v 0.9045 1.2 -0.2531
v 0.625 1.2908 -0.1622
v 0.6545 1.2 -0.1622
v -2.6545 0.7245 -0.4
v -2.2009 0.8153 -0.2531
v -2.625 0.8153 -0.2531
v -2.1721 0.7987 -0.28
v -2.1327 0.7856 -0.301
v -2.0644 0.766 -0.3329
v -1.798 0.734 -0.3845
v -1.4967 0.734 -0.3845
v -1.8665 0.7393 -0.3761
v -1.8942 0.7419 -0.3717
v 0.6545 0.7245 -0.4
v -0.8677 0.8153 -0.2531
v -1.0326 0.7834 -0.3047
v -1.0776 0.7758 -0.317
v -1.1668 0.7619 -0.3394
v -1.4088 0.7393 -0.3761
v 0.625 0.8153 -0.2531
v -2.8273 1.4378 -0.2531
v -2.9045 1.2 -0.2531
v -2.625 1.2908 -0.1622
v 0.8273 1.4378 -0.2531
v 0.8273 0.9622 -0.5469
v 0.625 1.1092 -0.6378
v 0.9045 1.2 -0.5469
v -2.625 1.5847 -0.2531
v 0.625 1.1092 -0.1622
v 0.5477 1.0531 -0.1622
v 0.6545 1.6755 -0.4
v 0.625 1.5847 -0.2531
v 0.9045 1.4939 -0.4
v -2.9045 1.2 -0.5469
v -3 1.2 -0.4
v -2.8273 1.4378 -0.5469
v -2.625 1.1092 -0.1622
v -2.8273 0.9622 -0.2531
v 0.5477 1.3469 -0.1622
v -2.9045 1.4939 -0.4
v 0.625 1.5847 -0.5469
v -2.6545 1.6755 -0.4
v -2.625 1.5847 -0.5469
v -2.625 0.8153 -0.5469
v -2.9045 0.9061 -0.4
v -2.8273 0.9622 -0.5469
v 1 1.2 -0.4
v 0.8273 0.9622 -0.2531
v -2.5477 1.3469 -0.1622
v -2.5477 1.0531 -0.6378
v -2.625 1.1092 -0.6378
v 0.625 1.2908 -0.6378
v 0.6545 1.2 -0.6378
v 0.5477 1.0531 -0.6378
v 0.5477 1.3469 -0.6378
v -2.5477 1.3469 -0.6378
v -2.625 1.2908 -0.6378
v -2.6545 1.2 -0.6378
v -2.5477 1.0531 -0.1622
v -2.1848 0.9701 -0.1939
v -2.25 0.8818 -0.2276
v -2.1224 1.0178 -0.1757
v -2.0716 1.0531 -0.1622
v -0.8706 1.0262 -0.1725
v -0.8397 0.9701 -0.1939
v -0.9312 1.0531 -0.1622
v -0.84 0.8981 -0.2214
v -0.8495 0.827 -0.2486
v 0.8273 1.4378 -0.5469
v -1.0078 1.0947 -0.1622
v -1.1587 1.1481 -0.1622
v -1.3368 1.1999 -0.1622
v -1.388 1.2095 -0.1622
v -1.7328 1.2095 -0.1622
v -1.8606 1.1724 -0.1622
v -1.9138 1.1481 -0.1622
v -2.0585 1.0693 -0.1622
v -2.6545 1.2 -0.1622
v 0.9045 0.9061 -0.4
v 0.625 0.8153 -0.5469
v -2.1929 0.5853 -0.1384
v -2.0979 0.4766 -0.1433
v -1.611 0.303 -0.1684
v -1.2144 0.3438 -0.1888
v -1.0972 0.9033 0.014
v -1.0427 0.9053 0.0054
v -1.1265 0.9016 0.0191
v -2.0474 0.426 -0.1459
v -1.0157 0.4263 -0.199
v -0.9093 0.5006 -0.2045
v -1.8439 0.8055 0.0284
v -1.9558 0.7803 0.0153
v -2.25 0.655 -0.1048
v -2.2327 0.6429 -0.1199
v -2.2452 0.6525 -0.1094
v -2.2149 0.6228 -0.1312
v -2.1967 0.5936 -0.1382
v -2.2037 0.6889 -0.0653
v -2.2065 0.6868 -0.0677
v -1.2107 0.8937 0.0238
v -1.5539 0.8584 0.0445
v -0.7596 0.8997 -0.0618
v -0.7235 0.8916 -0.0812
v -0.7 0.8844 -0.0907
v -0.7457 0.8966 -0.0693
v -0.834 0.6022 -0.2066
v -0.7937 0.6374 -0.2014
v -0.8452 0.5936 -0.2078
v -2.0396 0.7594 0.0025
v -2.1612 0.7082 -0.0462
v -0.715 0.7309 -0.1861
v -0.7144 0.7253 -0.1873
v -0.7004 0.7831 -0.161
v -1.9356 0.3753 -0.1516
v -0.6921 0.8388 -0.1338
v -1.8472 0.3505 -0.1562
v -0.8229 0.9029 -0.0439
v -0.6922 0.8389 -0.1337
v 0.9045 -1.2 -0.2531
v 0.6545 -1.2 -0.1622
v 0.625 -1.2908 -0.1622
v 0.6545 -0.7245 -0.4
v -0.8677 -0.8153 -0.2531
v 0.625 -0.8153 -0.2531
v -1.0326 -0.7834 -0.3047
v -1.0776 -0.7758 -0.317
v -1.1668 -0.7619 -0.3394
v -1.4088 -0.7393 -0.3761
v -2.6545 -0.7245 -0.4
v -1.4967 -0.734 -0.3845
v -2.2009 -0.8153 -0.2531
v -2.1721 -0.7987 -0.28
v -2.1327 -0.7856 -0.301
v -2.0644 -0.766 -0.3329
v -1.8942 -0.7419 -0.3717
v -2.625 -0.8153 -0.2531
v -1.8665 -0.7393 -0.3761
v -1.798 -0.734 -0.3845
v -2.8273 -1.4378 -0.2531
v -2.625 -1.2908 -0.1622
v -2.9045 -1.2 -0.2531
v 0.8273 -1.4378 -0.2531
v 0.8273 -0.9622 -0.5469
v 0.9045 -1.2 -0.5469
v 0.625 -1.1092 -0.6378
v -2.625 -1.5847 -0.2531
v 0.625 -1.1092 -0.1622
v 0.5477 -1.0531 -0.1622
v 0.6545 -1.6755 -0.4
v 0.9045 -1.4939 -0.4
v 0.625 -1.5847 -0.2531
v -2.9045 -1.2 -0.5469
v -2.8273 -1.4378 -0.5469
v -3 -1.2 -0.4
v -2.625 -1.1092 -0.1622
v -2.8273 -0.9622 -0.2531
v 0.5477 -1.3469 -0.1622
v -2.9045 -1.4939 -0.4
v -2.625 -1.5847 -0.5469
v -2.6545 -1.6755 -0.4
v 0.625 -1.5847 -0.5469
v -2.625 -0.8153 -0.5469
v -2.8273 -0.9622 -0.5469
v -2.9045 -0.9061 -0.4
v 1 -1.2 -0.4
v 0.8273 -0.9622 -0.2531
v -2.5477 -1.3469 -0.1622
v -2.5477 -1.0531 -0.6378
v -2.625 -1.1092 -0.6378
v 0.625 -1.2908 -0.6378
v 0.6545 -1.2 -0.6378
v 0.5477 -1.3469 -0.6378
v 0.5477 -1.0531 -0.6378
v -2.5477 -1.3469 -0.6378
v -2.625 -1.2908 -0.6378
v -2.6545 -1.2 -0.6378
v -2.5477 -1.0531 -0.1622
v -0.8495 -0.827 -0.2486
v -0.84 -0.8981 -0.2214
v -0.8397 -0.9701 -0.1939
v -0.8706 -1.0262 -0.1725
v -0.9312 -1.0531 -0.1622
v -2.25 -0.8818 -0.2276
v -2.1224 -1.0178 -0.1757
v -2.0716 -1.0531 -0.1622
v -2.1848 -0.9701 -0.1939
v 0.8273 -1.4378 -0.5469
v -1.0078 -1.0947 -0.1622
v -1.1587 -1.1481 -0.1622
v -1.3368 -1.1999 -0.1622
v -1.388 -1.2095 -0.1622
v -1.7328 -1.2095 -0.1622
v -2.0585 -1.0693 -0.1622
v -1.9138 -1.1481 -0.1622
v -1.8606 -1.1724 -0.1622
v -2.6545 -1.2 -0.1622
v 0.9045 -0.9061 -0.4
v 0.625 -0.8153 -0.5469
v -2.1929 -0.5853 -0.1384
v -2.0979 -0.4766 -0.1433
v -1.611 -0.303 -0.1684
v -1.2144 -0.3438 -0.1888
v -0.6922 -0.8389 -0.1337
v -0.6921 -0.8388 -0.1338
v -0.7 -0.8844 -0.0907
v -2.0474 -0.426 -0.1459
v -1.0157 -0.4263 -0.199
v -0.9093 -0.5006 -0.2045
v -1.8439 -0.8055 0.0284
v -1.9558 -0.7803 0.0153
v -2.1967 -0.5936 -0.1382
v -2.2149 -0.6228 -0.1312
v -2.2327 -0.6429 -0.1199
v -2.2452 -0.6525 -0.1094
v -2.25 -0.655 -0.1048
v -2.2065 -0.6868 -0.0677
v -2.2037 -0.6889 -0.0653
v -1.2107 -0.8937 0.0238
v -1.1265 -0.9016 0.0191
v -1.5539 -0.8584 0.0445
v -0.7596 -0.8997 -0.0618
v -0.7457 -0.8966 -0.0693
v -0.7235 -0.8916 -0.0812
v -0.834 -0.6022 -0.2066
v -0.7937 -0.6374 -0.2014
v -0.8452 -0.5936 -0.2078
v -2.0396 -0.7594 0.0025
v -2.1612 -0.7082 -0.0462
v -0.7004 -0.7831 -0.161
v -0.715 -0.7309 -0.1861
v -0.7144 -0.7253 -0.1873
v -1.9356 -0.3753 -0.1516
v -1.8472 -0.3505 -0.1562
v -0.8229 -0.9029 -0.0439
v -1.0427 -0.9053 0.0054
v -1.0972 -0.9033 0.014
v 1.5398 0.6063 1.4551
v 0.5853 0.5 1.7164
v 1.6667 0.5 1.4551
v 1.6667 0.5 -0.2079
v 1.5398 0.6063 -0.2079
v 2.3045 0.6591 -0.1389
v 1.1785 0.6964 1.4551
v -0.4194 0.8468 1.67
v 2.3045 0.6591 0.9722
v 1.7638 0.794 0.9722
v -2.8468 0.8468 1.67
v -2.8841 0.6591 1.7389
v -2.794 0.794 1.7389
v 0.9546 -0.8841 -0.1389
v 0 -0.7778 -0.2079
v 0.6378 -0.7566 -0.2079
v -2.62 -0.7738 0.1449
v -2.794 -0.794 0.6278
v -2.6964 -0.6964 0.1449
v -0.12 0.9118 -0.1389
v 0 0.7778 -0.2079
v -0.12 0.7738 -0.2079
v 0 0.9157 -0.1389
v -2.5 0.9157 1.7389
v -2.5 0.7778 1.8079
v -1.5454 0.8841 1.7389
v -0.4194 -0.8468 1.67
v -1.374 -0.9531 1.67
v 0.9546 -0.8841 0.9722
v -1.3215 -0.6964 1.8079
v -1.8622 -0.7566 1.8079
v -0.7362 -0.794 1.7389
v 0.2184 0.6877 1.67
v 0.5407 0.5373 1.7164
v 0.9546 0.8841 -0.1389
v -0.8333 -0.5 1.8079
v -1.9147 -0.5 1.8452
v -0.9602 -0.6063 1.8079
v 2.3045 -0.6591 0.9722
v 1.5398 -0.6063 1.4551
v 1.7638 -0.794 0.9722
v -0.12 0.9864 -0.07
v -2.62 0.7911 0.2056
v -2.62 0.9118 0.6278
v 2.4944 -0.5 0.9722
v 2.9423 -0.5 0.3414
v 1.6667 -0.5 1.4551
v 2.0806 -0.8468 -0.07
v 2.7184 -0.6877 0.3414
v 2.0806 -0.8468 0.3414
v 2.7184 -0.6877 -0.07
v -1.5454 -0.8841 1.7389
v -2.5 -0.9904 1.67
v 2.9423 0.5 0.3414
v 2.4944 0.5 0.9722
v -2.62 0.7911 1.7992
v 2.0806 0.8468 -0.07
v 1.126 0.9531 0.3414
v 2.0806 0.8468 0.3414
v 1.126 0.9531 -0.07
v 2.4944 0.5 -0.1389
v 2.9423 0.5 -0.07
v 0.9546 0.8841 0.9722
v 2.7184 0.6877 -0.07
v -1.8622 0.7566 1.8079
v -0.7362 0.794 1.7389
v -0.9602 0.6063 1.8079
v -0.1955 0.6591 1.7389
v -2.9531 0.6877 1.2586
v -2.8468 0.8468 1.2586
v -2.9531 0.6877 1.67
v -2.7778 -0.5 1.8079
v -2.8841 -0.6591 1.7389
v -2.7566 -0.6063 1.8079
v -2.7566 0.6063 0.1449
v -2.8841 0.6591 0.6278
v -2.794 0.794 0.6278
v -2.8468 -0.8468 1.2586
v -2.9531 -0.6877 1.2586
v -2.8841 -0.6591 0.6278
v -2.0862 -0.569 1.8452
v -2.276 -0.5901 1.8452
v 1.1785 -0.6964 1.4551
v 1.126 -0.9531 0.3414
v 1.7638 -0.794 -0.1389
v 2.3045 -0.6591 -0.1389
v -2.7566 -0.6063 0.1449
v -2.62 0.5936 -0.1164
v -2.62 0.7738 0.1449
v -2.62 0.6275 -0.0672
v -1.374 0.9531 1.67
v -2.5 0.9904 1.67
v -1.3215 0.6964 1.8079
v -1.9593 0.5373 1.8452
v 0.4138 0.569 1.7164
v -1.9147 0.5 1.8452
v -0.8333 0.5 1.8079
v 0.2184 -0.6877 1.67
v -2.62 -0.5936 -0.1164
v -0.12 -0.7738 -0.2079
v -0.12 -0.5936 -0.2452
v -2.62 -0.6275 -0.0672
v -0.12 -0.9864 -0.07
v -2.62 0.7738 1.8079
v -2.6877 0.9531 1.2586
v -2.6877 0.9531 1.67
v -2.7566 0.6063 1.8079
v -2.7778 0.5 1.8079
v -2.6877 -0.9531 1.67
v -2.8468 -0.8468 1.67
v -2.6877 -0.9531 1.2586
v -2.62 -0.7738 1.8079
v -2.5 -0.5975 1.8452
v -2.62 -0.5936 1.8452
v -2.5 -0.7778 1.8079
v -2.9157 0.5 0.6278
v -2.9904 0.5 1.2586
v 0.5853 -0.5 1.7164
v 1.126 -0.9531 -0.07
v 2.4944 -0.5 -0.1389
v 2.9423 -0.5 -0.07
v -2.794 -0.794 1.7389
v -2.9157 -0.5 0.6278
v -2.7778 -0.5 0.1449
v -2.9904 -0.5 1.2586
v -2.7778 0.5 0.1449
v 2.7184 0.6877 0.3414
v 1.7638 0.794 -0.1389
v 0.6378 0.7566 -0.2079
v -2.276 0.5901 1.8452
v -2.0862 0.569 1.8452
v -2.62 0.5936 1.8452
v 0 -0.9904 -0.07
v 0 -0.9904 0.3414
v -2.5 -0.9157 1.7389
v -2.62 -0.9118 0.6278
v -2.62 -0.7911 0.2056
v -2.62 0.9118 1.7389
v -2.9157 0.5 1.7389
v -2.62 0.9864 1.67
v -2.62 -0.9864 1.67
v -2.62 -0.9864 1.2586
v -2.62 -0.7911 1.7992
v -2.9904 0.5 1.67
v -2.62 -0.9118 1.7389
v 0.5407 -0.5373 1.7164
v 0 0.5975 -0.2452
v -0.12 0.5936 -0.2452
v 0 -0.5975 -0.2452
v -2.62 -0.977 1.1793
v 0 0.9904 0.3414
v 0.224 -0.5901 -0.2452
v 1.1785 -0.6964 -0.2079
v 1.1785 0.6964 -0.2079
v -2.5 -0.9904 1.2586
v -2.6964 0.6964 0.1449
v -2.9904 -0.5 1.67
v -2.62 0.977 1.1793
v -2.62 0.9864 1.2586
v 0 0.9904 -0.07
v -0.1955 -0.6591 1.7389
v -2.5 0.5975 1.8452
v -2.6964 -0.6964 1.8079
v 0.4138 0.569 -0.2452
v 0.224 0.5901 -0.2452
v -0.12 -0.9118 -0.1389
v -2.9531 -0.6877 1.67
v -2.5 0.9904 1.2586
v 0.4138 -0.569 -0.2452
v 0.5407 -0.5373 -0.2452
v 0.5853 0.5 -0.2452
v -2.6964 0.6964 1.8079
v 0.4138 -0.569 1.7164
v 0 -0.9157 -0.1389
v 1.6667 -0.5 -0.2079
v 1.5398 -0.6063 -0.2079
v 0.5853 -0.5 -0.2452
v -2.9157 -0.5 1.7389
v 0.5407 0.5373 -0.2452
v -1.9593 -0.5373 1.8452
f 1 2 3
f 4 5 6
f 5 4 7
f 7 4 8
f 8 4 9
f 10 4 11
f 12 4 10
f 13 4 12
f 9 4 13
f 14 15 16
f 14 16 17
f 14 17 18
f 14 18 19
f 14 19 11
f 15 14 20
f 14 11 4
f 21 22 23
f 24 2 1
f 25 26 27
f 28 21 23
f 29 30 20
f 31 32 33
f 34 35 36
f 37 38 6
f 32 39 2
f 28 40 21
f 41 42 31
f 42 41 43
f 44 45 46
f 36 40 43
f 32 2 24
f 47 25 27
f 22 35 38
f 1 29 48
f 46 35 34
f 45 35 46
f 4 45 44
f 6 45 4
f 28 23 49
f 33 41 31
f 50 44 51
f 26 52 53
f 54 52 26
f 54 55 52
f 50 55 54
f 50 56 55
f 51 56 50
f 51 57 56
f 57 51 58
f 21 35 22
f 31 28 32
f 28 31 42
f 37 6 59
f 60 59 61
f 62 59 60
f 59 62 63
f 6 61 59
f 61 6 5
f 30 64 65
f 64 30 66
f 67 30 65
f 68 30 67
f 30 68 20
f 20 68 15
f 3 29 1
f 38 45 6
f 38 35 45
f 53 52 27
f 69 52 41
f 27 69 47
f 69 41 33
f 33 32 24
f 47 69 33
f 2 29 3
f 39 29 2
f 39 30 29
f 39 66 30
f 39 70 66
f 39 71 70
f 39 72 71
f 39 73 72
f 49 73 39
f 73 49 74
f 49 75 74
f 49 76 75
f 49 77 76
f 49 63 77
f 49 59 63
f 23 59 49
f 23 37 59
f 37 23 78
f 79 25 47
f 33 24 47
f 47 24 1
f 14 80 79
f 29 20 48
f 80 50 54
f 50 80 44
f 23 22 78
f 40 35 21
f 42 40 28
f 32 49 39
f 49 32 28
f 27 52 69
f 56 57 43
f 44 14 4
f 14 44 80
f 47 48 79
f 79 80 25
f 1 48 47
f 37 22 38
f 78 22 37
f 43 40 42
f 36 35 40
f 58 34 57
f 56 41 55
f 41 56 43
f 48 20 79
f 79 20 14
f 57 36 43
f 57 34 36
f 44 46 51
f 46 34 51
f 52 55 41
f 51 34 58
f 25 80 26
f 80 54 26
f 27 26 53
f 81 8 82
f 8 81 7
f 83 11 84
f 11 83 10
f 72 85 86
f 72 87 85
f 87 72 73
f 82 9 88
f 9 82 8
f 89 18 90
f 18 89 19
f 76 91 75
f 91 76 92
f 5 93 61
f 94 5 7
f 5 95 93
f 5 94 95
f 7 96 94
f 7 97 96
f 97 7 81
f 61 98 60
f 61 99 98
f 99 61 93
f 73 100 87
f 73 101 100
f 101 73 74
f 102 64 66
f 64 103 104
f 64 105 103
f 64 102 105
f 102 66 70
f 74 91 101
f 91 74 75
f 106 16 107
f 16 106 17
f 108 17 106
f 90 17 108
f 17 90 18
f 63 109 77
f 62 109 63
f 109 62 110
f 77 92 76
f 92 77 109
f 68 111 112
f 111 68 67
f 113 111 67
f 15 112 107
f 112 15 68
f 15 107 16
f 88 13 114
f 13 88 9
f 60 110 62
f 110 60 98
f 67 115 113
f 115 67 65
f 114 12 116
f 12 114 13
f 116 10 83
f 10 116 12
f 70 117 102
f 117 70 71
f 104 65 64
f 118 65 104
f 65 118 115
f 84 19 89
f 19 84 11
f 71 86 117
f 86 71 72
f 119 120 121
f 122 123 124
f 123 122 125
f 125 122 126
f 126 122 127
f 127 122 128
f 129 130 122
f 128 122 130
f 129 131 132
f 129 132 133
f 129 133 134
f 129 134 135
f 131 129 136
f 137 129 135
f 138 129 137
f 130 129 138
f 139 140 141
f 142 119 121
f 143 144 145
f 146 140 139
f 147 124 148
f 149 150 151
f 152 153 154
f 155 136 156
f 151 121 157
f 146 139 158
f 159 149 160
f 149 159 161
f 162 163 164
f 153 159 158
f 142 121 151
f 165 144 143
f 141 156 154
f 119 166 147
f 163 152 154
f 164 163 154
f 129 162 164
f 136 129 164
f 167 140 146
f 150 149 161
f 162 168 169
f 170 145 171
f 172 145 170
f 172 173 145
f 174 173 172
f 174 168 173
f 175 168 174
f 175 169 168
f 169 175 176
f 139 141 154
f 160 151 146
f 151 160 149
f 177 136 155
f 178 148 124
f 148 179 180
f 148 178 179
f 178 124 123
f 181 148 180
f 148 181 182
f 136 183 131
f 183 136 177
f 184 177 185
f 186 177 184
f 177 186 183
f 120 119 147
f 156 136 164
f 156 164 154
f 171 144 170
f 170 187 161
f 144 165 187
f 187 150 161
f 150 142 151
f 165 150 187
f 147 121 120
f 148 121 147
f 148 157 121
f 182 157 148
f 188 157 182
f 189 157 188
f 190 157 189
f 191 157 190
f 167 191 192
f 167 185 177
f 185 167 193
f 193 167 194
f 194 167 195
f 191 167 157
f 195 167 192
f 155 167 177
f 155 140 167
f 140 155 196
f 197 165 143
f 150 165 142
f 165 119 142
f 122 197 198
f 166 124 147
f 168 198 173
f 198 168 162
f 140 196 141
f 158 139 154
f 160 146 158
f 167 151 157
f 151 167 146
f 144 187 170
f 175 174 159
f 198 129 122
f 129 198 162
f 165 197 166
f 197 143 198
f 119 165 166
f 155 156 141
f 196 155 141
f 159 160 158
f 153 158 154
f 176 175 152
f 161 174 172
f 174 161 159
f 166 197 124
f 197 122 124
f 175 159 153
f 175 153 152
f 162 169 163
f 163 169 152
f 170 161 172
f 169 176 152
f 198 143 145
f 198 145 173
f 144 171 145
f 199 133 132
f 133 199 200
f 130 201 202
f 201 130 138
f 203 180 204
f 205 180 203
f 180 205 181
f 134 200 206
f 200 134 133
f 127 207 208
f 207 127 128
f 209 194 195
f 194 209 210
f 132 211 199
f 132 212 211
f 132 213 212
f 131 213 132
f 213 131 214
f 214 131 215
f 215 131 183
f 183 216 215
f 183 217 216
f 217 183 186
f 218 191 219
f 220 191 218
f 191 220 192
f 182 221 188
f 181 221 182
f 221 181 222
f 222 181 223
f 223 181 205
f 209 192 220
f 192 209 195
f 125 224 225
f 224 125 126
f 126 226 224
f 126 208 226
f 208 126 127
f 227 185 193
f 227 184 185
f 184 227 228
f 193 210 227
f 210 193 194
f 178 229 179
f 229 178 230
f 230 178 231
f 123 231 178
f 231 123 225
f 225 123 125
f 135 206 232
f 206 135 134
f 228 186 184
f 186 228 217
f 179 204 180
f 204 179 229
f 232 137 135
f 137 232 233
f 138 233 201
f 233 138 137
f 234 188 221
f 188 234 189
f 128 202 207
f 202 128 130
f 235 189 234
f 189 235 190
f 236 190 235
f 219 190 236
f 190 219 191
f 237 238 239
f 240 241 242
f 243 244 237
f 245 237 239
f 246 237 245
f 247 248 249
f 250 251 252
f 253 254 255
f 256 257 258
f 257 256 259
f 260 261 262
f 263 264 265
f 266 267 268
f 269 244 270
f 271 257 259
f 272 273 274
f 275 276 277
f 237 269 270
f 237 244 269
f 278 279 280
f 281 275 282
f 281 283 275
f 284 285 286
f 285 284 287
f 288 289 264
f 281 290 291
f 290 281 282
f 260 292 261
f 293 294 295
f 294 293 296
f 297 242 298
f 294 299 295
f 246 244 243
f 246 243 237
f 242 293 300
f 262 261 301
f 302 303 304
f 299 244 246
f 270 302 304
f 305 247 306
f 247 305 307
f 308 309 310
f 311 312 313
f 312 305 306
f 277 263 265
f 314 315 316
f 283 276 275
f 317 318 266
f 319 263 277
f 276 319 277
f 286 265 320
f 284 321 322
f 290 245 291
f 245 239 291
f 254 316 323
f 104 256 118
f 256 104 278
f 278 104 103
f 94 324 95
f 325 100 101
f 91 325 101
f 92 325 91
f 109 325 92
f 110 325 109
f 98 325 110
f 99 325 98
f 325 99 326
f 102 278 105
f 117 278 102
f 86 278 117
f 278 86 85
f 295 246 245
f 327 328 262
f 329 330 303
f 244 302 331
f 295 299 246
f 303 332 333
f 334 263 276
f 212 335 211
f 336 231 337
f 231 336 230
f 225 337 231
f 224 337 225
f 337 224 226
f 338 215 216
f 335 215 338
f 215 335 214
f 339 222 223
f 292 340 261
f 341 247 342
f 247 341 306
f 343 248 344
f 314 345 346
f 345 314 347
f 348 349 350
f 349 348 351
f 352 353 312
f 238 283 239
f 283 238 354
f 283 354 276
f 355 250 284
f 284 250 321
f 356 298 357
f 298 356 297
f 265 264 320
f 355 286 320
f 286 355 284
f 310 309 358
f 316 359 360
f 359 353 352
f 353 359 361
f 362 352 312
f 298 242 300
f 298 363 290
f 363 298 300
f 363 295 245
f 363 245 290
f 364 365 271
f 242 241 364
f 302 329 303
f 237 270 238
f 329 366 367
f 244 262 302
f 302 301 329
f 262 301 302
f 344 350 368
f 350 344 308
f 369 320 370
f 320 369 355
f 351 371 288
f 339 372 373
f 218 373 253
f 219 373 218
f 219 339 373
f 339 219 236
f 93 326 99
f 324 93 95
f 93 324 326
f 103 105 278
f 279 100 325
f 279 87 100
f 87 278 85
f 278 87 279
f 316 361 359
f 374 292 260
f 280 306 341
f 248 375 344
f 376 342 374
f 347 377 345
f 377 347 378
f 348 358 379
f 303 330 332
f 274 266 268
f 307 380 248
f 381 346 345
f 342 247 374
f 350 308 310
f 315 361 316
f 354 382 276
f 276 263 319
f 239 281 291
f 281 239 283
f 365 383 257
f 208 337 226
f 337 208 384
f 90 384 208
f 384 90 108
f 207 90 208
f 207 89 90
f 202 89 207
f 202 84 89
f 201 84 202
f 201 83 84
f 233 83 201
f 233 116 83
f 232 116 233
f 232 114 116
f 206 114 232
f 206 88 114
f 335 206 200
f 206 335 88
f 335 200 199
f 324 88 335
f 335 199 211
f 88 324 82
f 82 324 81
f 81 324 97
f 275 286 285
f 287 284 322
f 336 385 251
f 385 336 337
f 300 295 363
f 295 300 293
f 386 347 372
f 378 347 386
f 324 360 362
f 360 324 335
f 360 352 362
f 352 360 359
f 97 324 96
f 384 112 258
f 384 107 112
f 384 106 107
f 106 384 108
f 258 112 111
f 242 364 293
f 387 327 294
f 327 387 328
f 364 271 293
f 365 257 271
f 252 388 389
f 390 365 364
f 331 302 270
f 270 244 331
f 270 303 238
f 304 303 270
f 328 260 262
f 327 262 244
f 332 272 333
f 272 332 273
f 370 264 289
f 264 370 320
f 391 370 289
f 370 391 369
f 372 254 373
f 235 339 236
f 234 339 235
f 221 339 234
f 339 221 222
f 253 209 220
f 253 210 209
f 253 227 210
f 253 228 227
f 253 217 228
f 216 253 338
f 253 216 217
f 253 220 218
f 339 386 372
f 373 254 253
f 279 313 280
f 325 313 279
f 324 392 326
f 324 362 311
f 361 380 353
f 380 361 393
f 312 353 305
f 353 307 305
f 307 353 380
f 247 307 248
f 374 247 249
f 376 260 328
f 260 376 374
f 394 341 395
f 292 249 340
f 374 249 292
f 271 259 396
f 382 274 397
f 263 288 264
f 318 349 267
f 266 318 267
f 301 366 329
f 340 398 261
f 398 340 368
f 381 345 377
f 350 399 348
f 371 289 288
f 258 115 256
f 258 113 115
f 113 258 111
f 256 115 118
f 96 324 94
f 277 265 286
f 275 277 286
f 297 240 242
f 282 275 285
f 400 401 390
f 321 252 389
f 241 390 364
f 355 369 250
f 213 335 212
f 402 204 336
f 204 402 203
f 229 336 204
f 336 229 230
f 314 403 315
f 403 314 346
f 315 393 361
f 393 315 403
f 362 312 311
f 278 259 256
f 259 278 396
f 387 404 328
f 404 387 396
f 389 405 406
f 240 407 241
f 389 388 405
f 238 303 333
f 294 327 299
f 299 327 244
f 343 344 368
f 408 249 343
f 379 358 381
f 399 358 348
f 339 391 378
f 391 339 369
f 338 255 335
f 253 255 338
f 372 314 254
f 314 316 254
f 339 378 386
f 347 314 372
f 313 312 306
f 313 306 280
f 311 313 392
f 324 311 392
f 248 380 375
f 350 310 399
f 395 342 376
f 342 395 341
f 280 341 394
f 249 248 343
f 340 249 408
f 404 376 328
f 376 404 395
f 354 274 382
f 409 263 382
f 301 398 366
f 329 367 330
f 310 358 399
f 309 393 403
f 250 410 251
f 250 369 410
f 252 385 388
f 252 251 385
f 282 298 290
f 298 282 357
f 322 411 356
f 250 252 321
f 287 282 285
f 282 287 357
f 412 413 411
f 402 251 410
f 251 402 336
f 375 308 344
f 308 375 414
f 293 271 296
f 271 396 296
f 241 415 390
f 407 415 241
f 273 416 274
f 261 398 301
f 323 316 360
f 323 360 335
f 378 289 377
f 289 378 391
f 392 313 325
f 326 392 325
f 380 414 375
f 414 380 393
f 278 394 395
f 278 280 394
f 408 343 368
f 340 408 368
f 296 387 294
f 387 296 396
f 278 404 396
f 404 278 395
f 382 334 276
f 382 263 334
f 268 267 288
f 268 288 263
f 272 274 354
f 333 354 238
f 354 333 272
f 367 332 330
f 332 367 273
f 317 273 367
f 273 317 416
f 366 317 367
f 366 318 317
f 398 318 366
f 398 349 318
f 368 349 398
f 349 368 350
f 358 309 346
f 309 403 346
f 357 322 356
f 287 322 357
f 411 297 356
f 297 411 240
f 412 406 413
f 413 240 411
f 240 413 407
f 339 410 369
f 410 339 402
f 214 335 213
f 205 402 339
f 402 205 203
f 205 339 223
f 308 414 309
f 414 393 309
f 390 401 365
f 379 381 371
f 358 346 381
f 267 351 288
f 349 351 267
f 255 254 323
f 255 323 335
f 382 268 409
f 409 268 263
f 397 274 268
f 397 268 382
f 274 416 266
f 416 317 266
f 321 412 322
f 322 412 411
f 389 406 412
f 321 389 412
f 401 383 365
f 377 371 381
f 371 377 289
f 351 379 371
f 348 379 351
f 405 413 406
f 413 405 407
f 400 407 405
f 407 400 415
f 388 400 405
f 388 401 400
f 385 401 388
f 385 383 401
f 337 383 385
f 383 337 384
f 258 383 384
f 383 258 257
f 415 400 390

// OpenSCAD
// file: ../lib/util.scad
fn1 = 32;
fn2 = 16;

module util_half_sphere(radius, fn=fn1) {
    difference() {
        sphere(radius, $fn=fn);
        translate([0,0,-(radius+radius/19)])
            cube(2*radius+radius/10, center=true);
    }
}

function gcd(a,b) = a == b ? a : a > b ? gcd(a-b, b) : gcd(a, b-a);

module util_saucer(length, width, height, fn=fn1) {
    rad = gcd(length,gcd(width,height));
    //rad = 10;
    scale([length/(2*rad), width/(2*rad), height/rad])
        util_half_sphere(rad, fn);
}

module util_half_cylinder(length, radius, inner_fn=fn2, outer_fn=fn1) {
    maxval = max(length, 2*radius);
    intersection() {
        difference() {
            rotate([0,90,0])
                translate([0,0,-(length/2 + length/20)])
                    cylinder(length+length/10, radius, radius, $fn=inner_fn);
            
            translate([0,0,(maxval/2 + maxval/19)])
                cube(maxval+maxval/10, center=true);
        }
        
        translate([0,0,-(radius+radius/20)])
            cylinder(radius + radius/10, length/2, length/2, $fn=outer_fn);
    }
}

module util_body(length, width, height, upper_height, fn=fn1) {
    rad = gcd(length, gcd(width, upper_height));
    
    scale(.995) scale([length/(2*rad), width/(2*rad), 1])
        util_half_cylinder(2*rad, height, outer_fn=fn);
}

module util_graded_cylinder(height, radius_start, radius_end, grades=1, fn=fn1) {
    height_grade = height / grades;
    radius_grade = (radius_start - radius_end) / (grades * grades);
    for (i = [0 : 1 : grades]) {
        translate([0,0,i*height_grade])
            cylinder(height_grade, 
                     radius_start - i*radius_grade * i,
                     radius_start - (i+1) * radius_grade * (i+1),
                     $fn = fn);
    }
}

module util_nacelle(length, width, height, curved=false, up=true, front_bulge=false) {
    rad = min(width, height/2);
    grads = curved ? 6 : 1;
    scale_factor = front_bulge ? 1.1 : 1;
    direction = up ? -1 : 1;
    difference() {
        scale([1, width/ (2*rad), height/rad])
            difference() {
                union() {
                    rotate([0,-90,0])
                        rotate(30)
                            util_graded_cylinder(length-rad, rad, rad/2, grads, 6);
                    scale(scale_factor) 
                        rotate([0,90,0]) rotate(90) sphere(rad, $fn=6);
                }
                
                translate([-length/2, 0, direction * (height/2 + height/19)])
                    cube([length+length, width+width, height+height/10], center=true);
            }
        
        translate([-length-(curved?length/3:0), 0, -length/3])
            rotate([0,-45,0])
                cube(length, center=true);
    }
}

module util_mirrored(v) {
    children();
    mirror(v) children();
}

module util_ring(outer, inner, height, fn=fn1) {
    difference() {
        translate([0,0,-height/2])
            cylinder(height, outer, outer, $fn=fn);
        translate([0,0,-(height/2 + height/19)])
            cylinder(height+height/10, inner, inner, $fn=fn);
    }
}

module util_star(radius, thick, num, half=false) {
    angle = 360/num;
    offset = half? angle/2 : 0;
    for (i = [0: 1: num]) {
        rotate(i* angle + offset)
            translate([radius/2,0,0])
                cube([radius, thick, thick], center=true);
    }
}

module util_ring_star(radius, thick, num, inner, half=false) {
    outer=inner+thick;
    avg = (inner + outer)/2;
    union() {
        difference() {
            util_star(radius, thick, num, half);
            cylinder(2*thick, outer, outer, $fn=num, center=true);
        }
        util_ring(outer, inner, thick);
    }
}

module util_hangar_disk(height, lower, upper, num, fn=fn1) {
    difference() {
            cylinder(height, lower, upper, $fn=fn, center=true);
        difference() {
            scale([1,1,22])
                util_star(1.1*upper, height/20, num, half=true);
            scale(.95)
                cylinder(height, lower, upper, $fn=fn, center=true);
        }
    }
}

module util_hangar_form(length, width, height, num, inner=0) {
    l = 0.6* max(length, width);
    h = 2.5* height;
    thick = min(height/20,1);
    inner = inner == 0 ? l/3 : inner;
    difference() {
        children();
        scale([1,1,h/thick]) 
            util_ring_star(l, thick, num, inner, half=true);
    }
    scale(.95) children();
}

module util_nacelle_bar(span, height, width, thickness, faces=fn1) {
    rad = (span*span/(8*height) + height/2);
    outer = rad + thickness/2;
    inner = rad - thickness/2;
    difference(){
        translate([0,0,outer])
            rotate([0,90,0])
                util_ring(outer, inner, width, fn=faces);
    
        translate([0,0,1.1*outer+height])
            cube(2.2*outer, center=true);
    }
}

module util_q_sphere(rad, quadrant, faces) {
    x_sign = quadrant == 1 ? 1 :
             quadrant == 2 ? -1 :
             quadrant == 3 ? -1 :
             quadrant == 4 ? 1 : 0;
    z_sign = quadrant == 1 ? 1 :
             quadrant == 2 ? 1 :
             quadrant == 3 ? -1 :
             quadrant == 4 ? -1 : 0;
    
    difference() {
        sphere(rad, $fn=faces);

        translate([x_sign*(-1.1*rad - .01),0,0])
        cube(2.2*rad, center=true);

        translate([0,0,z_sign*(-1.1*rad - .01)])
        cube(2.2*rad, center=true);
    }
}

module util_ovoid(front_rad, back_rad, width, upper_rad, lower_rad, faces=32) {
    half_width = width/2;
    largest=max(front_rad, back_rad, half_width, upper_rad, lower_rad);
    smallest=min(front_rad, back_rad, half_width, upper_rad, lower_rad);
    
    union() {
        scale([front_rad/smallest, half_width/smallest, upper_rad/smallest])
        util_q_sphere(smallest, 1, faces);
        
        scale([front_rad/smallest, half_width/smallest, lower_rad/smallest])
        util_q_sphere(smallest, 4, faces);
        
        scale([back_rad/smallest, half_width/smallest, lower_rad/smallest])
        util_q_sphere(smallest, 3, faces);
        
        scale([back_rad/smallest, half_width/smallest, upper_rad/smallest])
        util_q_sphere(smallest, 2, faces);
    }
}

module util_saucer_shape(width, height, height_ext, depth, depth_ext) {
    difference() {
        util_ovoid(width/2,
                   width/2,
                   width,
                   height+height_ext,
                   depth+depth_ext);
        
        if (height_ext > 0) {
            translate([0,0,width/2 + height])
            cube(width, center=true);
        }
        
        if (depth_ext > 0) {
            translate([0,0,-width/2 - depth])
            cube(width, center=true);
        }
    }
}
// main file
use <../lib/util.scad>;

module small_shuttle_base() {
    util_ovoid(3, .5, 1, 1.75, .25, faces=16);
}

module small_shuttle_body() {
    hull() {
        util_mirrored([0,1,0])
        translate([0,1-.5,0])
        small_shuttle_base();

        util_mirrored([0,1,0])
        translate([-2.5,1-.5,1.6])
        mirror([0,0,1])
        small_shuttle_base();
    }
}

module small_shuttle_nacelle() {
    hull()
    util_mirrored([1,0,0])
    translate([1.5,0,0])
    scale([1,1,.5])
    sphere(d=1,$fn=10);
}

module small_shuttle() {
    small_shuttle_body();
    small_shuttle_assembly();
}

module small_shuttle_assembly() {
    util_mirrored([0,1,0]) {
        translate([-1,1.2,-.4]) 
        small_shuttle_nacelle();

        hull() {
            translate([-1,0,.25])
            scale([2.5,1,.25])
            sphere(.5, $fn=10);

            translate([-1.75,1.2,-.4]) 
            scale([1,.75,.25])
            sphere(.5, $fn=10);
        }
    }
}

small_shuttle();
